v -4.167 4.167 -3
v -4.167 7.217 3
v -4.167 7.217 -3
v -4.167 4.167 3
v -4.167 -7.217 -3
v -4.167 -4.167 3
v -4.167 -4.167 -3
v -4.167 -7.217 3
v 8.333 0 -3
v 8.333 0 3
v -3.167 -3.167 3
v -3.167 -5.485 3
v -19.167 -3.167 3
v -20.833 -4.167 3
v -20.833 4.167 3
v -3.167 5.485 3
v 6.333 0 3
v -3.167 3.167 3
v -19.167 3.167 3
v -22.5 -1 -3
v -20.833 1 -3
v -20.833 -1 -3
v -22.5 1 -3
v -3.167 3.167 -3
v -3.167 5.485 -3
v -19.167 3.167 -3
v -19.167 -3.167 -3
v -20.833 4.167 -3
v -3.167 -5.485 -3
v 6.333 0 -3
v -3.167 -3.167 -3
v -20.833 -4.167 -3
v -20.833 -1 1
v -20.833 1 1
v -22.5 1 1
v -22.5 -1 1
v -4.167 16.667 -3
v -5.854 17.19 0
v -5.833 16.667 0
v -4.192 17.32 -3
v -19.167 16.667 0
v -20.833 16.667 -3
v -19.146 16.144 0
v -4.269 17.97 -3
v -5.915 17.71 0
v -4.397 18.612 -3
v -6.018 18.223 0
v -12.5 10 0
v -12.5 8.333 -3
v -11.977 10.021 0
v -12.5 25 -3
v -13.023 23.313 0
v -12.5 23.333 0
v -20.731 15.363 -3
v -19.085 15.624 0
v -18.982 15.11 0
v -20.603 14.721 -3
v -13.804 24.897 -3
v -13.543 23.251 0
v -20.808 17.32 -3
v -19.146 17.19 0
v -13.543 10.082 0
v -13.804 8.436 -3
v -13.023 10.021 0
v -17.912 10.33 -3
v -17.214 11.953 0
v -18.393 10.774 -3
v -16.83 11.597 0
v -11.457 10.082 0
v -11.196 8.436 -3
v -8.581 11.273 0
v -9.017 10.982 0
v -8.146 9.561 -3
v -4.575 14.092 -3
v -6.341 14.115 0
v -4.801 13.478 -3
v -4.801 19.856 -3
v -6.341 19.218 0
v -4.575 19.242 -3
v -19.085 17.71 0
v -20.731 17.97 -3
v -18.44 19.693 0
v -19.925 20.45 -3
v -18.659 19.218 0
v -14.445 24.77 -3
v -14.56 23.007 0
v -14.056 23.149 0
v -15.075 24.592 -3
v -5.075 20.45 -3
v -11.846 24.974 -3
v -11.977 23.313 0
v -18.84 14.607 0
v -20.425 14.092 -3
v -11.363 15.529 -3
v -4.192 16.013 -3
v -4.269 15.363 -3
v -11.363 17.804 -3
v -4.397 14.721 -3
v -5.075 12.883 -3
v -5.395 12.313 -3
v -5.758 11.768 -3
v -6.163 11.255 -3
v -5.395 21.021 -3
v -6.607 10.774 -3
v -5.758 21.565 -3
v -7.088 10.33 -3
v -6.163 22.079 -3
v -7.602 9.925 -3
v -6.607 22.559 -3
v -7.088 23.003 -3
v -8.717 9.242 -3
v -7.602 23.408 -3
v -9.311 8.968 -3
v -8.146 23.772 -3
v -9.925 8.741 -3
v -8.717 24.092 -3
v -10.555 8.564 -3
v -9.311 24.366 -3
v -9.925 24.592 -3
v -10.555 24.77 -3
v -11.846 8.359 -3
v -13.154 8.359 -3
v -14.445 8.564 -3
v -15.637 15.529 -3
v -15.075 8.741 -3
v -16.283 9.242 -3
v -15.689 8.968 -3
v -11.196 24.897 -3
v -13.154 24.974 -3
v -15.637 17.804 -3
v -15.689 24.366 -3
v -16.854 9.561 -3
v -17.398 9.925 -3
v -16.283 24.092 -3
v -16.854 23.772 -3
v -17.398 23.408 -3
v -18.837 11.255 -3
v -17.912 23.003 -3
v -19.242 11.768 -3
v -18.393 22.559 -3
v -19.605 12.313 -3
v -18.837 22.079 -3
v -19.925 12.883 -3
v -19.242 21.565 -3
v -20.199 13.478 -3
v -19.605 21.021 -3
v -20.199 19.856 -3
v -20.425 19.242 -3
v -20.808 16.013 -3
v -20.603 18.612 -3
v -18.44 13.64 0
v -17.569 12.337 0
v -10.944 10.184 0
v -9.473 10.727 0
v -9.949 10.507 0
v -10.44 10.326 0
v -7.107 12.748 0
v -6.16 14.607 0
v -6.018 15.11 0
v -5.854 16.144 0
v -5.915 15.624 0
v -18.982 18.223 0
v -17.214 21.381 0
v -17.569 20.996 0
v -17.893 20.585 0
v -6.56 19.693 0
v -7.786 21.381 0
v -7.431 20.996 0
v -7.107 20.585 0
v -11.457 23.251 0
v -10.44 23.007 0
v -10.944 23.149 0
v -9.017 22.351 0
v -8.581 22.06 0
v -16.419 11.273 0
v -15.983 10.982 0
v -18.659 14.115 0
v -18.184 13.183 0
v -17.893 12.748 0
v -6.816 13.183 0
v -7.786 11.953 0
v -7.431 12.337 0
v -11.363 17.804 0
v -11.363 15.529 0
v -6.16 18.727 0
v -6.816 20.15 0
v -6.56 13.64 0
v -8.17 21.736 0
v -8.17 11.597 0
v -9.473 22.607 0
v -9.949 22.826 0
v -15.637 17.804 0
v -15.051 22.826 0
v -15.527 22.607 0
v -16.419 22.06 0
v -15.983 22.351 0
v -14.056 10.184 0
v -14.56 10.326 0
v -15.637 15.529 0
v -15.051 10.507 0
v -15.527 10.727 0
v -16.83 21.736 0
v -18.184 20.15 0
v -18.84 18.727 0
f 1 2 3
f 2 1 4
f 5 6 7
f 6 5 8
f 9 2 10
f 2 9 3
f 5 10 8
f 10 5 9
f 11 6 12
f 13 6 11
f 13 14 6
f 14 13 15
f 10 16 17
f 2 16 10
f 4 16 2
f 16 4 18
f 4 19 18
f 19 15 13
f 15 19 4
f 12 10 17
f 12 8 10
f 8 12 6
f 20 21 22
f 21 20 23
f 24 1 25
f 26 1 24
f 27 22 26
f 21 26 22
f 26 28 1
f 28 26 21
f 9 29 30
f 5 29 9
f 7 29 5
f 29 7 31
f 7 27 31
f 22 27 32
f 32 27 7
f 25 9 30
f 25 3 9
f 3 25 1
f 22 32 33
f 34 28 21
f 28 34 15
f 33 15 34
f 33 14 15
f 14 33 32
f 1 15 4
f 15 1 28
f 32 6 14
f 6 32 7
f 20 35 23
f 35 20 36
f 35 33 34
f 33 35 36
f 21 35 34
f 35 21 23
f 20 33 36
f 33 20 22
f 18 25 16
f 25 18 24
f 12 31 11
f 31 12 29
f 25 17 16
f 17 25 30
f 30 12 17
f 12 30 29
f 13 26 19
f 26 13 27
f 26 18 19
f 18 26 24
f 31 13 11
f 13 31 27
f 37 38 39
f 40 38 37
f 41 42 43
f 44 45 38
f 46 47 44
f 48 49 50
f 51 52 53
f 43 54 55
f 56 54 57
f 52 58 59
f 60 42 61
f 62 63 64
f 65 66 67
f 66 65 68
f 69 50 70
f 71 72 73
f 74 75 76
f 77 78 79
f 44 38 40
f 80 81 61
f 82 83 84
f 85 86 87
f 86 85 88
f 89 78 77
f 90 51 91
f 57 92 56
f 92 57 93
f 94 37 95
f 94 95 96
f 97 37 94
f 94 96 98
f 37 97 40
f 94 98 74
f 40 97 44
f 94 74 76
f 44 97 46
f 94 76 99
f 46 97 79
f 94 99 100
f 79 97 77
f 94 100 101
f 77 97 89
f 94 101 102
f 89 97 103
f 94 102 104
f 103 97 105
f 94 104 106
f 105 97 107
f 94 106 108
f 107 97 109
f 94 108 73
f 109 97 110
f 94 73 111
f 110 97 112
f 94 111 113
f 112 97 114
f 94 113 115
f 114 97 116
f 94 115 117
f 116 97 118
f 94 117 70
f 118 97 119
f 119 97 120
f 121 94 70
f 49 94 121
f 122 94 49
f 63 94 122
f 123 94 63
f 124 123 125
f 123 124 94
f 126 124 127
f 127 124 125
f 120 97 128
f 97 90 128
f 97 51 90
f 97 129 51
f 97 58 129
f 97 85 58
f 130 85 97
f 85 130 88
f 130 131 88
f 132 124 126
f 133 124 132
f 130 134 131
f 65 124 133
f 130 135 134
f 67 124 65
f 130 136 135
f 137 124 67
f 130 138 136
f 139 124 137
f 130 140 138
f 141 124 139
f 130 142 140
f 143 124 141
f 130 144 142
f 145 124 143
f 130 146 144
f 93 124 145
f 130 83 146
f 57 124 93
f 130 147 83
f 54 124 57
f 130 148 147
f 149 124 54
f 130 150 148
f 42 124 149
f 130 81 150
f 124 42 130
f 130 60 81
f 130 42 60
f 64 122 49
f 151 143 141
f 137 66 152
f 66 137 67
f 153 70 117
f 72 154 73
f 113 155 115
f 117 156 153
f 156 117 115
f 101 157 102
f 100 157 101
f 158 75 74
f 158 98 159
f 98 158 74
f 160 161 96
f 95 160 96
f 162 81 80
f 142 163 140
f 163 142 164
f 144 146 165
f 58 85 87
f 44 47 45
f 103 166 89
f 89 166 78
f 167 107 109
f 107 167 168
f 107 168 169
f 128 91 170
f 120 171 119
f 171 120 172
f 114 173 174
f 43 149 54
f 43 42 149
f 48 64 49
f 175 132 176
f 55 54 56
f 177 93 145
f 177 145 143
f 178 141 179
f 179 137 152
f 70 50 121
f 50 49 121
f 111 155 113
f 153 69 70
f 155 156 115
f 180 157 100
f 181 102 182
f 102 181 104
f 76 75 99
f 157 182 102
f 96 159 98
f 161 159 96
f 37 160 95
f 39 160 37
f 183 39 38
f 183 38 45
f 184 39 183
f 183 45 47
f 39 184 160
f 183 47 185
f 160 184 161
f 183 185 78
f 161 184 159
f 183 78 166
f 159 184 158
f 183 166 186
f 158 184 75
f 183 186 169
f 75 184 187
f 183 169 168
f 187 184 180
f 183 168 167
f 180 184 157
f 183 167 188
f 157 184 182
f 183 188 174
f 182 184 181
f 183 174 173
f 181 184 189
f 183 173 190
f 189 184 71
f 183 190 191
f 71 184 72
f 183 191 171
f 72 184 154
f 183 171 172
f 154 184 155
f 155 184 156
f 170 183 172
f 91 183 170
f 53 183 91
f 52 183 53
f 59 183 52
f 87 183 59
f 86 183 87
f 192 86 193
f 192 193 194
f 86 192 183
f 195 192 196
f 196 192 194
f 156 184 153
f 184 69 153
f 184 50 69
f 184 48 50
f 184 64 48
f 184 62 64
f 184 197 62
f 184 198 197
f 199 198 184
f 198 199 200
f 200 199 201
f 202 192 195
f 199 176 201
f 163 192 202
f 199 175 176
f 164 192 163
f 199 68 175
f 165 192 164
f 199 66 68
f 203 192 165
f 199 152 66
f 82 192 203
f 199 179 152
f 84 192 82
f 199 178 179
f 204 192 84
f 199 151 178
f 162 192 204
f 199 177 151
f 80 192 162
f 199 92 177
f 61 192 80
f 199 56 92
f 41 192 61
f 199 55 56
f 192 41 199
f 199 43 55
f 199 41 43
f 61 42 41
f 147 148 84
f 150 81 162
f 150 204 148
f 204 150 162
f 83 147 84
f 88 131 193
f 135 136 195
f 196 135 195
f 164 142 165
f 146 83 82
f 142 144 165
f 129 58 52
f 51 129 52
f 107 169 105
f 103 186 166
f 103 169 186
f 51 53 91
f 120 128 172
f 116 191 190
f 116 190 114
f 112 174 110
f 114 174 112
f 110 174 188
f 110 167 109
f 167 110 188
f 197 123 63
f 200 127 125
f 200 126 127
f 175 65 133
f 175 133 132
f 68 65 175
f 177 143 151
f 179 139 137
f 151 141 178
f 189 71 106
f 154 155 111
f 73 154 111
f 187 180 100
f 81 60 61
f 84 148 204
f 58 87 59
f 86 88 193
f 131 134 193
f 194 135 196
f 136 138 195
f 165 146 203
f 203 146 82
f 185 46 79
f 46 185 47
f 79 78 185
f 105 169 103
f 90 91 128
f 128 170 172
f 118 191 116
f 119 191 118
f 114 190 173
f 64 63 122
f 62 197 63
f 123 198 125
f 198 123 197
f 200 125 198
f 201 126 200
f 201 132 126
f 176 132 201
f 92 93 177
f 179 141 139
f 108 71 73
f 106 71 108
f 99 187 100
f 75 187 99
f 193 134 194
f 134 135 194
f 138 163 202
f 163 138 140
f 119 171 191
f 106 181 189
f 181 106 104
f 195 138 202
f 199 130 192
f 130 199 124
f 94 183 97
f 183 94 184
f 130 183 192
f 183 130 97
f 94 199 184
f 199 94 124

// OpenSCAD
height = 25;
width = height/3;
thickness = 6;

module arrow(height, width, thickness) {
cylinder(h=thickness, r=width, center=true, $fn=3);
translate([-height/2+0.5,0,0]) cube([height*2/3+1, width, thickness], center=true);
}

wall = 2;

module base(width, thickness) {
    difference() {
        cylinder(h=thickness/2, r1=width, r2=width*0.8, center=true, $fn=80);
        translate([-thickness/3/2, 0,0]) cube([4.275,2.275,width+1],center=true);    }
}


difference() {
  union() {
    arrow(height, width, thickness);
    translate([-height+4.5,0,-thickness/3/2]) cube([4,2,thickness*2/3],center=true);
  }
arrow(height-wall, width-wall, thickness+1);
}

translate([-width*1.5, width*2, -thickness/4]) base(width, thickness);
